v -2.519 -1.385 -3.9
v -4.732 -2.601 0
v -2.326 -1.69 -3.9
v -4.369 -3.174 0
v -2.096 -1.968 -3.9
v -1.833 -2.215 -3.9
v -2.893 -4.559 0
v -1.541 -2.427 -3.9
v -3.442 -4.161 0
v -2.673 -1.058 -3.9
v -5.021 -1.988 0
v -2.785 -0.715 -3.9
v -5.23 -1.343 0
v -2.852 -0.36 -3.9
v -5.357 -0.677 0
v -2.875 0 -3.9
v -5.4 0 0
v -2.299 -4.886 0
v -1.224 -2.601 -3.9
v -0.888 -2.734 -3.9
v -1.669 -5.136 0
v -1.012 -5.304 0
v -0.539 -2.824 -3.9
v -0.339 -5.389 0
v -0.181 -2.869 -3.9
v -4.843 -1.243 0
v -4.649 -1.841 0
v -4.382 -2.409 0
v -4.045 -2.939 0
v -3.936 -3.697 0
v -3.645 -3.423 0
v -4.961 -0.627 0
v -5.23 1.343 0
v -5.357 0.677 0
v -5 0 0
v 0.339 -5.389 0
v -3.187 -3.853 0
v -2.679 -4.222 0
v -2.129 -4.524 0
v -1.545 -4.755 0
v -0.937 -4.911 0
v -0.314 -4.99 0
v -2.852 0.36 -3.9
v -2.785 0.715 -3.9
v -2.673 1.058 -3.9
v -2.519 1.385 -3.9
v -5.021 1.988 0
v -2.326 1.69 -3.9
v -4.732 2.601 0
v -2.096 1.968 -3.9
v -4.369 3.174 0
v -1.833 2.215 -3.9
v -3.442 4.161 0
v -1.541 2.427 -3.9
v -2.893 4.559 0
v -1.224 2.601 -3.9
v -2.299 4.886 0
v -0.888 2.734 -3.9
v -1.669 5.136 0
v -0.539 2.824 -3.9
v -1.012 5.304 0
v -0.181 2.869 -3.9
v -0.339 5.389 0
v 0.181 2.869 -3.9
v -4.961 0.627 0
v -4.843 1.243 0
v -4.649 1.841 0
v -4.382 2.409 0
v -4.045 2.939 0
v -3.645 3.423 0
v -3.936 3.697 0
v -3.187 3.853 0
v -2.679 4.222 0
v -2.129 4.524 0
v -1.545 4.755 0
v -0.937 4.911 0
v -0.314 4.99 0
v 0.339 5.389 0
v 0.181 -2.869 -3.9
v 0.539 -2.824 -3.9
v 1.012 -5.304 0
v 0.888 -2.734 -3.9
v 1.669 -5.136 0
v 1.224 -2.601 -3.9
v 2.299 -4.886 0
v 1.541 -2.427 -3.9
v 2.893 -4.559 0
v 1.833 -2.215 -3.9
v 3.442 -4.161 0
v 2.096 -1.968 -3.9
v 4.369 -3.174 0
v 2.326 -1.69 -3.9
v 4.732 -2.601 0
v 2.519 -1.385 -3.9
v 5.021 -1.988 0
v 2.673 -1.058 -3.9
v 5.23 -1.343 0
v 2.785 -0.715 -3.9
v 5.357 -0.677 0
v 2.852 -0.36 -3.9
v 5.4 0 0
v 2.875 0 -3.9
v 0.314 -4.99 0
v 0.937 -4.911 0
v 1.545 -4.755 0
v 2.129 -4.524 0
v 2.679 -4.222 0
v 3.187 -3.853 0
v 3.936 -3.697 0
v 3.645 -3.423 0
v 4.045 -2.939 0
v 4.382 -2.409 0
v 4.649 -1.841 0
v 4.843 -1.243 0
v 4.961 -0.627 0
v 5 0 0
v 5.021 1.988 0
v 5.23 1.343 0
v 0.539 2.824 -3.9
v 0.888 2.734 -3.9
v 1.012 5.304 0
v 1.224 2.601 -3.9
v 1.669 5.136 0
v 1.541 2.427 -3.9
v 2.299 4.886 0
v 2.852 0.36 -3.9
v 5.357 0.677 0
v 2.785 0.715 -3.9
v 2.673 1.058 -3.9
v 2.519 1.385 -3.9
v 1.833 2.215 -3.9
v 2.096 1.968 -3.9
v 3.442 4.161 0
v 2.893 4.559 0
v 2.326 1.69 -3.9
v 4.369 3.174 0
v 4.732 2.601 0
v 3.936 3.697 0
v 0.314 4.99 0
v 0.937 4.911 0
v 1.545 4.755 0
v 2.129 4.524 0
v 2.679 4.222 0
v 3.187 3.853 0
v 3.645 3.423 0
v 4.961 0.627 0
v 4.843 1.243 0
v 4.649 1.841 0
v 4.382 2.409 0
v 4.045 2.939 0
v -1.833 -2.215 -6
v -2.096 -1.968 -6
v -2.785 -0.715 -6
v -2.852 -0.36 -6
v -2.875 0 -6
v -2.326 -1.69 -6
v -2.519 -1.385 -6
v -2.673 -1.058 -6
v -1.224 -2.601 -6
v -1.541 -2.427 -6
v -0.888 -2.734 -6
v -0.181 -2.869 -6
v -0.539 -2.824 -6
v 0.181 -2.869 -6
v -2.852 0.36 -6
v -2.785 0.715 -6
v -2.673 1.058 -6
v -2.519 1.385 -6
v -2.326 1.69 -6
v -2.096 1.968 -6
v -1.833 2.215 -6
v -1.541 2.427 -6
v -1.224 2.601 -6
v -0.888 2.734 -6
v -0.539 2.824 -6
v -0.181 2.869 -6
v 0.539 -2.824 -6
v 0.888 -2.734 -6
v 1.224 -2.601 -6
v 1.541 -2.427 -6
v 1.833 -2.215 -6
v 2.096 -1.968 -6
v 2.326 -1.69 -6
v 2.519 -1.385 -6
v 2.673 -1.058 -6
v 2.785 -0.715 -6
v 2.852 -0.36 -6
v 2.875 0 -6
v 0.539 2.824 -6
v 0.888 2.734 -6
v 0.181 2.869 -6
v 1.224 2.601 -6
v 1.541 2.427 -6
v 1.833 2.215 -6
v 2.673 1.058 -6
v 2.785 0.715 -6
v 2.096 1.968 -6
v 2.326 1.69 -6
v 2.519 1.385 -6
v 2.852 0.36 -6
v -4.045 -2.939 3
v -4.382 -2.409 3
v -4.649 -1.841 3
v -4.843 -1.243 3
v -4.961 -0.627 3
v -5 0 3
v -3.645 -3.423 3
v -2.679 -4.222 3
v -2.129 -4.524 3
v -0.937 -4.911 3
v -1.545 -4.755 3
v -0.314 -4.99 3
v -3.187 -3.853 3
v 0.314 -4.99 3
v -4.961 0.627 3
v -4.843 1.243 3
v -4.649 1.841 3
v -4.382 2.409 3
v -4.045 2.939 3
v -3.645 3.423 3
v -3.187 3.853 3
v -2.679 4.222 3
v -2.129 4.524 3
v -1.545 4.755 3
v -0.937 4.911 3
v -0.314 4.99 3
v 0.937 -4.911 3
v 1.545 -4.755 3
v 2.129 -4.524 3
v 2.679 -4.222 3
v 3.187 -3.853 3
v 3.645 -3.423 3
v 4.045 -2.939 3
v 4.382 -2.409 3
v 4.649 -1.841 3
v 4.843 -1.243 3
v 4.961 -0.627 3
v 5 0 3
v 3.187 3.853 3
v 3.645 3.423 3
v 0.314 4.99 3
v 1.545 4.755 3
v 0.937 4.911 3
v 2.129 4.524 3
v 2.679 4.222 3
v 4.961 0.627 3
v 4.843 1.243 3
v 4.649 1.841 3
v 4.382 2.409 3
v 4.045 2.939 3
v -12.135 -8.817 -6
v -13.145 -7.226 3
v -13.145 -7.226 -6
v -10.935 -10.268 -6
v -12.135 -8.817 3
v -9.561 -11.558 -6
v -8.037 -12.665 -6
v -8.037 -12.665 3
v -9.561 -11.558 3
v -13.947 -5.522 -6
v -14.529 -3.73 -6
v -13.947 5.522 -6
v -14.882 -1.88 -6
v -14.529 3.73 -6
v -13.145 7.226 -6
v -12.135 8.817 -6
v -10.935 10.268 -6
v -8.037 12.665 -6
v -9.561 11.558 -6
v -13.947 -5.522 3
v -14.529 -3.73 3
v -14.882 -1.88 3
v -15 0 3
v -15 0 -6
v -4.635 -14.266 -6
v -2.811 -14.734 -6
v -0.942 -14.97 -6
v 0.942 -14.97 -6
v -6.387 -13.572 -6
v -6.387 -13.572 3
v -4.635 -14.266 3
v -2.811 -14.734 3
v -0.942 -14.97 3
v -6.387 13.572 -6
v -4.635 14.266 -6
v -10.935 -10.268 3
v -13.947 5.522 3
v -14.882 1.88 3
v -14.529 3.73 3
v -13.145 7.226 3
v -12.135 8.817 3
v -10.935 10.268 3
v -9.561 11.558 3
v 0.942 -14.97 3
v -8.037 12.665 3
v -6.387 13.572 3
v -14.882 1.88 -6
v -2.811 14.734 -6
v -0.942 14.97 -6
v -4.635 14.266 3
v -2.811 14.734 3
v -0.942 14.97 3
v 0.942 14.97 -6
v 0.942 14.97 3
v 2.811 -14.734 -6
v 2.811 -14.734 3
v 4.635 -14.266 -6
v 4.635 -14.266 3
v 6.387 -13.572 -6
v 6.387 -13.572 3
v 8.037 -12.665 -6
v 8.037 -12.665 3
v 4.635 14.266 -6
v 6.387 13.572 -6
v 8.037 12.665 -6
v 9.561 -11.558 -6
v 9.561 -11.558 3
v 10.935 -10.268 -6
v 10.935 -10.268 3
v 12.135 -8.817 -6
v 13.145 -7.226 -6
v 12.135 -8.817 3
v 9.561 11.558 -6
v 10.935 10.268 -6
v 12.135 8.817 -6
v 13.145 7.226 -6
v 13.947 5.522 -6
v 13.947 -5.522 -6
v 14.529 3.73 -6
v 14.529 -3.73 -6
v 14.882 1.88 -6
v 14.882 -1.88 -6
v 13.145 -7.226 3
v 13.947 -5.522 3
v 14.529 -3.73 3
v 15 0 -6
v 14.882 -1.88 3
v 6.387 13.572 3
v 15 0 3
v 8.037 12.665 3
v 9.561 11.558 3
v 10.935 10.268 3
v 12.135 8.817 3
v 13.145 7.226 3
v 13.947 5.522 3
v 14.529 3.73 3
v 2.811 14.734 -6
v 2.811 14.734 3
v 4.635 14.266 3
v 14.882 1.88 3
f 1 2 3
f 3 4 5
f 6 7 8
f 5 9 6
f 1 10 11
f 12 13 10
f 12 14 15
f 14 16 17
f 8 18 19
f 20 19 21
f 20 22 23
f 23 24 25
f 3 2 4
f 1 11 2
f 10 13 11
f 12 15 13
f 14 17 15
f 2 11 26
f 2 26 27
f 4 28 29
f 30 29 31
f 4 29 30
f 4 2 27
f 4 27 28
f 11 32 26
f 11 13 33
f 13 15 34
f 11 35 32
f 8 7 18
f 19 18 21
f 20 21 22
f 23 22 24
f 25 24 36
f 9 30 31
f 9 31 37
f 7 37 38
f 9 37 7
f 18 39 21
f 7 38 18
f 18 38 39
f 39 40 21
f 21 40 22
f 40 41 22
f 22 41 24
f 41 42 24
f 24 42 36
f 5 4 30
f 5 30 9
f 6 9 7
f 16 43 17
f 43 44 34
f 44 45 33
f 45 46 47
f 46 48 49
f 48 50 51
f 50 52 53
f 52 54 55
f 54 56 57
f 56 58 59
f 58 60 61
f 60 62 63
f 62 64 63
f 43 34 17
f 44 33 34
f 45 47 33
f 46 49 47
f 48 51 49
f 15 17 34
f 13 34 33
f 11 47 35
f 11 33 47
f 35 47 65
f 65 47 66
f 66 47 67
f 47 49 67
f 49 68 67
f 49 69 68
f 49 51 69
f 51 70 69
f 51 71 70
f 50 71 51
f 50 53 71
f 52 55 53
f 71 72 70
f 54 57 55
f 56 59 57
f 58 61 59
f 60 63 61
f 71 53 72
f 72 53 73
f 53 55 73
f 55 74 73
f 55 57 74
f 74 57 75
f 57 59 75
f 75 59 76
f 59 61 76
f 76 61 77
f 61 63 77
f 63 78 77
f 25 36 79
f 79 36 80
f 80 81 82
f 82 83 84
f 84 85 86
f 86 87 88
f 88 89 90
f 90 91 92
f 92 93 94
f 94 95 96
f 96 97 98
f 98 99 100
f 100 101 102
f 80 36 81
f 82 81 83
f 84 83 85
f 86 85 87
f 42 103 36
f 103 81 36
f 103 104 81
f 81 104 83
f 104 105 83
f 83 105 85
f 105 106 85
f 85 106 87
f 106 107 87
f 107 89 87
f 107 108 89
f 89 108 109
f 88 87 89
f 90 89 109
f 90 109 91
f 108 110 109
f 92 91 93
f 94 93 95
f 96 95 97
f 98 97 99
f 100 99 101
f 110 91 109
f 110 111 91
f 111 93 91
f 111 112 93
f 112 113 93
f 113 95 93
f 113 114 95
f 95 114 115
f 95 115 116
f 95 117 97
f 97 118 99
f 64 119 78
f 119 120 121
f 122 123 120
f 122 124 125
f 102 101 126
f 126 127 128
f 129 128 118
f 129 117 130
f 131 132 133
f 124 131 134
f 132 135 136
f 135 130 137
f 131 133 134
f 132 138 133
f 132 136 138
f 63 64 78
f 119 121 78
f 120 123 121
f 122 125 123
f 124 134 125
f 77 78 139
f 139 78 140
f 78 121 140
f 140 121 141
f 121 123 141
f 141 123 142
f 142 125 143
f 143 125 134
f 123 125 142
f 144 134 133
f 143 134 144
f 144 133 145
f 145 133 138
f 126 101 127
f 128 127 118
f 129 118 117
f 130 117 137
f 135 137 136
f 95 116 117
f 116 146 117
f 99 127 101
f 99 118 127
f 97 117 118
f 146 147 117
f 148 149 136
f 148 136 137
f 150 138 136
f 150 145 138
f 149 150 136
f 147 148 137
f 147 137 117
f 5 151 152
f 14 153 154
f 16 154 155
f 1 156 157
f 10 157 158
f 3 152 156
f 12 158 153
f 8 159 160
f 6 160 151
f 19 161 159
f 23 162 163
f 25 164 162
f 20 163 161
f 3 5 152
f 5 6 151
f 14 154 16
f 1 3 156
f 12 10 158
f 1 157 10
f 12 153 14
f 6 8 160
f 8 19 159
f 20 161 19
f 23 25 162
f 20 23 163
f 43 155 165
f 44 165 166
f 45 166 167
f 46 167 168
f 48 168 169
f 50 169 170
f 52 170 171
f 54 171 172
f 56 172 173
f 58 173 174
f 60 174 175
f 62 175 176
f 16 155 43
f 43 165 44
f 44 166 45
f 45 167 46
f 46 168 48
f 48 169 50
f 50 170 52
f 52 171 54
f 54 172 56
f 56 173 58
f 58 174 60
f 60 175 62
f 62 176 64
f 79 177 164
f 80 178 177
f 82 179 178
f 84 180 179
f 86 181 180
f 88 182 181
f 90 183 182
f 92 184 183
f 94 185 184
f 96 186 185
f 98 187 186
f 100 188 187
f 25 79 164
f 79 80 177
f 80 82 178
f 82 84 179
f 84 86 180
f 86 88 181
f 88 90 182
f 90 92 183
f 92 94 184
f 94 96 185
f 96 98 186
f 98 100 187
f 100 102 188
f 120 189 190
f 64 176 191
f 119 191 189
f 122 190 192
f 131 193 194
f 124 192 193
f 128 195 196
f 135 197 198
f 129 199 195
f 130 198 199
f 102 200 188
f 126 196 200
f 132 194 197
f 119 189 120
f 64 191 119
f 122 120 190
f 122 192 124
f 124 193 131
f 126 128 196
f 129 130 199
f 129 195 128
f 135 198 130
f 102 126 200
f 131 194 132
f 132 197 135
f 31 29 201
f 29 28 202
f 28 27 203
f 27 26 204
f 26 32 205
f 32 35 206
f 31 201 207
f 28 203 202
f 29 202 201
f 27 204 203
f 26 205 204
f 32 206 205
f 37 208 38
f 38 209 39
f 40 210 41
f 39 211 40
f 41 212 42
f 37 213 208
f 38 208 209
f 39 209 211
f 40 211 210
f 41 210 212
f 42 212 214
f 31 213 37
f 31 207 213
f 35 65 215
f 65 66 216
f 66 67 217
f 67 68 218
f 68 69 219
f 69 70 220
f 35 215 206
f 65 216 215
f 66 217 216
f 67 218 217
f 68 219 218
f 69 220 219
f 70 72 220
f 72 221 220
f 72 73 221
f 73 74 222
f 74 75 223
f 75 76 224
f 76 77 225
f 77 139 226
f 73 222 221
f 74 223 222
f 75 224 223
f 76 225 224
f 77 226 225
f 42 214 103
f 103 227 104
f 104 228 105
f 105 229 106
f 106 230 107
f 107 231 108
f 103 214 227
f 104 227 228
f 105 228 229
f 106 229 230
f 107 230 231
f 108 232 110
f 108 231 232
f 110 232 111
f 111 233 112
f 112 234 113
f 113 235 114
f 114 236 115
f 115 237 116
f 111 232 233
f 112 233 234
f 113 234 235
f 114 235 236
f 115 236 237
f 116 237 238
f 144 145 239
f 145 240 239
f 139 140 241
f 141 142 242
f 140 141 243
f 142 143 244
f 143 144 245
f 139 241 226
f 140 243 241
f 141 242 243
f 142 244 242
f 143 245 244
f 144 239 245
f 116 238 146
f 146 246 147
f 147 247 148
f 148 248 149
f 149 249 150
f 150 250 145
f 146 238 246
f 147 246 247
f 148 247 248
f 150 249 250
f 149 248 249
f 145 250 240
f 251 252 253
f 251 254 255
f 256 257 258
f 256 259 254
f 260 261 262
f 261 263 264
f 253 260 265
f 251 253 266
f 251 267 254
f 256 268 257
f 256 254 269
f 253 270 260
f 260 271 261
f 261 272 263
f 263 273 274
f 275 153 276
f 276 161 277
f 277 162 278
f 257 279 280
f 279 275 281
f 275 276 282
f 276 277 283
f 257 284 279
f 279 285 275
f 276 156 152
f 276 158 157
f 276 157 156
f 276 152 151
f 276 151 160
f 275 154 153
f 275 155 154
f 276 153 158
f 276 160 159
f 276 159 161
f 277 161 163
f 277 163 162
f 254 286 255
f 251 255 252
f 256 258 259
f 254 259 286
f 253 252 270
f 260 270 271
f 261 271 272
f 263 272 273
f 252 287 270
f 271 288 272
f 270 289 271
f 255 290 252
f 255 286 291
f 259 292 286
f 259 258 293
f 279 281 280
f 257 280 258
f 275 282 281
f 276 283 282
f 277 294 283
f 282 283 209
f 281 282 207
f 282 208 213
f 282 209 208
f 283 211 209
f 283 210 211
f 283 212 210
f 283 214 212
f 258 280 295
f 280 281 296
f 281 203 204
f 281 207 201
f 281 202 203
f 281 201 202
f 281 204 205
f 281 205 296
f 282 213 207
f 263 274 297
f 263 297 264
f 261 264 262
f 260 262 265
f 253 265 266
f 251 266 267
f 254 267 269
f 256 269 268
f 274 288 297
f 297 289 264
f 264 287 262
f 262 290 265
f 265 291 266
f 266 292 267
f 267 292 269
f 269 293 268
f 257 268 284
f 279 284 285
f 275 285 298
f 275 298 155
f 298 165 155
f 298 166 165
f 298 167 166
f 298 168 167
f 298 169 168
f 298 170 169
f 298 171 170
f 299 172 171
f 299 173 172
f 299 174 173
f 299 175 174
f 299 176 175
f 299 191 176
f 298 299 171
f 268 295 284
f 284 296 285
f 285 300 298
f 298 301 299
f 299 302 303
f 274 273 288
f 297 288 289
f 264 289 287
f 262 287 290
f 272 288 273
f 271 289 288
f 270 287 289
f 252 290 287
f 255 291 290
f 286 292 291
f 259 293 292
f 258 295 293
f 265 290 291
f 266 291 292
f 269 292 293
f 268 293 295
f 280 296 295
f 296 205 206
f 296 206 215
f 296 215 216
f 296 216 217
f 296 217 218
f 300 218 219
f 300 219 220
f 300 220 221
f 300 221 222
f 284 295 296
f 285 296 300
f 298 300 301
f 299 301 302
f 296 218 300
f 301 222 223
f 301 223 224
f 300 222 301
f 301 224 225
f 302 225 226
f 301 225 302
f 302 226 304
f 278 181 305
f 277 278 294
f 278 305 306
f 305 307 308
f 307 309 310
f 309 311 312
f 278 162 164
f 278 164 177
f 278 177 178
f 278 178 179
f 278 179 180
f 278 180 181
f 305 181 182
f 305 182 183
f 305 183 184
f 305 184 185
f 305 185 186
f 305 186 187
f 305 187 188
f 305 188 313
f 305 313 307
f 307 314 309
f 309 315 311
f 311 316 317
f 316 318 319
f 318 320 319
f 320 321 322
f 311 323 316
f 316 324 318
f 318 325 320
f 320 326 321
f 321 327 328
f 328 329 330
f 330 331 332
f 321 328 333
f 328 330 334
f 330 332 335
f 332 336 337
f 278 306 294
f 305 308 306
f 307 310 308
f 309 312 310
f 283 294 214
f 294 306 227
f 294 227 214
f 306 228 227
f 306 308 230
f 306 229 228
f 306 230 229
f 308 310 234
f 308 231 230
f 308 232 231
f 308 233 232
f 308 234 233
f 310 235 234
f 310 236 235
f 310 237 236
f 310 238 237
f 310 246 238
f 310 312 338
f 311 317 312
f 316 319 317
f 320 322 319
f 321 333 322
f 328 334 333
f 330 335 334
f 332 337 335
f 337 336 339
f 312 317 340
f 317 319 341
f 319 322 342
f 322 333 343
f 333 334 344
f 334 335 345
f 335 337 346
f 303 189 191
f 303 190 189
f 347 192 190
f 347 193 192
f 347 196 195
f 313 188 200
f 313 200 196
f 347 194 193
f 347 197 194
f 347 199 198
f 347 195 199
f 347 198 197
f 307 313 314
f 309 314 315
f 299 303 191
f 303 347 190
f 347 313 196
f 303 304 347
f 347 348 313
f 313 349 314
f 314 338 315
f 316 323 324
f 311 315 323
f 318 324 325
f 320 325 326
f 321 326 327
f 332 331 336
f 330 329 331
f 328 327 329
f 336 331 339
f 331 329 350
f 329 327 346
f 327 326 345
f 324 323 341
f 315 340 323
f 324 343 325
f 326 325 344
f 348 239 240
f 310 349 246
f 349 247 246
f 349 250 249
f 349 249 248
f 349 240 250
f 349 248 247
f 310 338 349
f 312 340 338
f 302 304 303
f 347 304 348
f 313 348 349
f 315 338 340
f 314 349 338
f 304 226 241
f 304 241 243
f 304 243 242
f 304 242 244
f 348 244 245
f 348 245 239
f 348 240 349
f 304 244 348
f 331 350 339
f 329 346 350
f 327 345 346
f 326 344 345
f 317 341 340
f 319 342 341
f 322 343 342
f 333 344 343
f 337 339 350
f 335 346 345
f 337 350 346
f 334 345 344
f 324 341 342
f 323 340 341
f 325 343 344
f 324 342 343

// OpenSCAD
$fn = 50;

difference() {
	union() {
		translate(v = [0, 0, -6.0]) {
			cylinder(h = 9, r = 15.0);
		}
	}
	union() {
		translate(v = [0, 0, 0]) {
			rotate(a = [0, 0, 0]) {
				difference() {
					union() {
						translate(v = [0, 0, -9.0]) {
							cylinder(h = 9, r = 2.6);
						}
						translate(v = [0, 0, -3.9]) {
							cylinder(h = 3.9, r1 = 2.875, r2 = 5.4);
						}
						translate(v = [0, 0, -9.0]) {
							cylinder(h = 9, r = 2.875);
						}
						translate(v = [0, 0, -9.0]) {
							cylinder(h = 9, r = 2.6);
						}
					}
					union();
				}
			}
		}
		#cylinder(h = 3, r = 5.0);
	}
}
